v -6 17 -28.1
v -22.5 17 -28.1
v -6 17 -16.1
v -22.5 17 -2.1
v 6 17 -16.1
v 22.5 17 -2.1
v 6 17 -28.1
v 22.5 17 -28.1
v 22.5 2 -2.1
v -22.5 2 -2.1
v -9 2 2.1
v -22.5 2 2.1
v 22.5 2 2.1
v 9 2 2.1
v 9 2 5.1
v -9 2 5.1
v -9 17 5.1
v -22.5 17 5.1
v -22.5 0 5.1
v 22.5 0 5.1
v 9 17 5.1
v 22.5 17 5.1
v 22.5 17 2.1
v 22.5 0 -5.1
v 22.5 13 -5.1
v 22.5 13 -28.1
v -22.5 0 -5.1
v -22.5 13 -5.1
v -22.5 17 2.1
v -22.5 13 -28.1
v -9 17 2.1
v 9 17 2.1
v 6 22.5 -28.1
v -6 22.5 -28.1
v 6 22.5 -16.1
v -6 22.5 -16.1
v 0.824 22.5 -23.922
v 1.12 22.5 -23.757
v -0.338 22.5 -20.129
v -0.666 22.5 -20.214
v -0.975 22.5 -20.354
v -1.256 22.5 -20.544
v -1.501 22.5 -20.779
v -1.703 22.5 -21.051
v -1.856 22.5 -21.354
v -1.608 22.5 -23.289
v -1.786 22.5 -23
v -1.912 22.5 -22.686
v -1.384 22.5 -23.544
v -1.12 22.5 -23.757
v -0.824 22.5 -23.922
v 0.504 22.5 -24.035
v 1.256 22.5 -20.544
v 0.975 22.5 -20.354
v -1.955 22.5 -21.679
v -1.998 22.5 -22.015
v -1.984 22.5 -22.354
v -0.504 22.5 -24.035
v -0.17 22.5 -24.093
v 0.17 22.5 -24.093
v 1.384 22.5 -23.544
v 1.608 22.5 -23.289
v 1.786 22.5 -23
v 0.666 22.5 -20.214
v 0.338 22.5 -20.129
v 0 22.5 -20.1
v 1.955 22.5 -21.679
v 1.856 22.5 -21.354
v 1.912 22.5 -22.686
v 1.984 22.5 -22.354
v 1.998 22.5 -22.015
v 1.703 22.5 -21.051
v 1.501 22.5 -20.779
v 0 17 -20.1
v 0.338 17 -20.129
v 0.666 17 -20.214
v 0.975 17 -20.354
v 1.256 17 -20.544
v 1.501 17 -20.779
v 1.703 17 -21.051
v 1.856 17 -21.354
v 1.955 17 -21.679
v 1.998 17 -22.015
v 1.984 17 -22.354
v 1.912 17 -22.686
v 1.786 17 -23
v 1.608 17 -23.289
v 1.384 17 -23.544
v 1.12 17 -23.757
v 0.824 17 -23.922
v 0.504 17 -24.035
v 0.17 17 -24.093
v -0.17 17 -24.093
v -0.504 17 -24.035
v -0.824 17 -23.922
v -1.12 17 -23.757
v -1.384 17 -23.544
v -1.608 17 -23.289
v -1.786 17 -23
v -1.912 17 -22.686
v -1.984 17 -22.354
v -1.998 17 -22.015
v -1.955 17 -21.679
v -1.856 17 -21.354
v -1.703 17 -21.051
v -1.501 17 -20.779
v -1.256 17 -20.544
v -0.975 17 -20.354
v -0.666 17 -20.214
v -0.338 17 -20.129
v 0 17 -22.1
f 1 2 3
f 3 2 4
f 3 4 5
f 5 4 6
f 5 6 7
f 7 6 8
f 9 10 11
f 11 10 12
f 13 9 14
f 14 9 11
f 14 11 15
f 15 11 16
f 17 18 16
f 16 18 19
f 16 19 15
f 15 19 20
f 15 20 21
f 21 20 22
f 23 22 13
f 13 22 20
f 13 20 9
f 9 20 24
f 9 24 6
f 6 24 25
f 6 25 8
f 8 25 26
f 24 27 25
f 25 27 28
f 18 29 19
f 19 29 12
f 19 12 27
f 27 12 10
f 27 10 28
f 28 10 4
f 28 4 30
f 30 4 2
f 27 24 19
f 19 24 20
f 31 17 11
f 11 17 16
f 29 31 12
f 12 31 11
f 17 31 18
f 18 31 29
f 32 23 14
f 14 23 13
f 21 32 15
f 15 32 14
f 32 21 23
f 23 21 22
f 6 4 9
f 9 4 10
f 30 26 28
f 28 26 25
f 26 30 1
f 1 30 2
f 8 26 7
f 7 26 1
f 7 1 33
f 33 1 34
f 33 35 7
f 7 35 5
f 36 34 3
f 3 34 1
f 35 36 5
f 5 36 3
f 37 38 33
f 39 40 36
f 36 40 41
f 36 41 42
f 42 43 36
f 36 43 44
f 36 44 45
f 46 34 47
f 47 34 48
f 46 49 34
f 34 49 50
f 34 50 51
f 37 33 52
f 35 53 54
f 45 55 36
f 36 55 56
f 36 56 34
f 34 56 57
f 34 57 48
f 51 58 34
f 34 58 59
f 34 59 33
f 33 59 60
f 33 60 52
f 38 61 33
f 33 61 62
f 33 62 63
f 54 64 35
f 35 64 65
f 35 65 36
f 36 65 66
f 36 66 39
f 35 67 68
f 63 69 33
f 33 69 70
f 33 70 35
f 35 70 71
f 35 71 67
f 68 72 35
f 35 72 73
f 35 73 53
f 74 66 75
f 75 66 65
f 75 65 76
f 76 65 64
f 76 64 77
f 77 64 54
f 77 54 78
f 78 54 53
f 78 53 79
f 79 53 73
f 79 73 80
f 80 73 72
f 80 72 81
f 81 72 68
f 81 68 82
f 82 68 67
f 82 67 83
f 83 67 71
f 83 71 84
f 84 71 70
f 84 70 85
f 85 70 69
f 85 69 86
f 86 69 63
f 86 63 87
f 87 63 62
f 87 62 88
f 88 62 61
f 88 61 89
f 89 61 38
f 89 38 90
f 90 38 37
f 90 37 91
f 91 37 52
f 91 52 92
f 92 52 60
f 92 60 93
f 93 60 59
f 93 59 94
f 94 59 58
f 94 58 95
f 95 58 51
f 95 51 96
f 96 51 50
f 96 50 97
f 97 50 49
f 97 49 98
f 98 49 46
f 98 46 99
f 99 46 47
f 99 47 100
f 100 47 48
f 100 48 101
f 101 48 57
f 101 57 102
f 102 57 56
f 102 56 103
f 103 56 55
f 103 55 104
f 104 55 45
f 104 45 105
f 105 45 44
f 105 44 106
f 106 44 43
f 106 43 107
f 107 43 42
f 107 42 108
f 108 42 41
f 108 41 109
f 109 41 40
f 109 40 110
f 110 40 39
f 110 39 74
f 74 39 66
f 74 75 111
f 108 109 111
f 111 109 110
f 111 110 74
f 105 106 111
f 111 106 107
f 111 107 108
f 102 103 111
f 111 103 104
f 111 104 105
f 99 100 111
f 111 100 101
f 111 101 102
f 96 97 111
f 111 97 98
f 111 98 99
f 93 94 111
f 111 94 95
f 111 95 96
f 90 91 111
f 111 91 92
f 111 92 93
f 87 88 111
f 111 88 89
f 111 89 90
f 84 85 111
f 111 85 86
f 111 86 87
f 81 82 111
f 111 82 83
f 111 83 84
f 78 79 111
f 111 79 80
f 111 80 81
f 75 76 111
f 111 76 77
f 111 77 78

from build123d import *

# Parameters (mm, degrees)
SKETCH1_W      = 45
SKETCH1_H      = 10.2
EXTRUDE1_DEPTH = 2
SKETCH2_W      = 13.5
SKETCH2_H      = 3
SKETCH2_W_2    = 45
EXTRUDE2_DEPTH = 15
SKETCH3_W      = 45
SKETCH3_H      = 4
EXTRUDE3_DEPTH = 23
SKETCH6_W      = 12
SKETCH6_H      = 12
EXTRUDE4_DEPTH = 5.5
SKETCH7_R      = 2
EXTRUDE5_DEPTH = 5.5


with BuildPart() as part:
    # Sketch1 → Extrude1 (new body)
    with BuildSketch(Plane(origin=(0, 0, 0), x_dir=(1, 0, 0), z_dir=(0, 1, 0))):
        Rectangle(SKETCH1_W, SKETCH1_H)
    extrude(amount=EXTRUDE1_DEPTH)

    # Sketch2 → Extrude2 (add)
    with BuildSketch(Plane(origin=(0, 2, 0), x_dir=(1, 0, 0), z_dir=(0, 1, 0))):
        with Locations((-15.75, -3.6)):
            Rectangle(SKETCH2_W, SKETCH2_H)
        with Locations((15.75, -3.6)):
            Rectangle(SKETCH2_W, SKETCH2_H)
        with Locations((0, 3.6)):
            Rectangle(SKETCH2_W_2, SKETCH2_H)
    extrude(amount=EXTRUDE2_DEPTH)

    # Sketch3 → Extrude3 (add)
    with BuildSketch(Plane(origin=(0, 0, -5.1), x_dir=(-1, 0, 0), z_dir=(0, 0, -1))):
        with Locations((0, 15)):
            Rectangle(SKETCH3_W, SKETCH3_H)
    extrude(amount=EXTRUDE3_DEPTH)

    # Sketch6 → Extrude4 (add)
    with BuildSketch(Plane(origin=(0, 17, 0), x_dir=(1, 0, 0), z_dir=(0, 1, 0))):
        with Locations((0, 22.1)):
            Rectangle(SKETCH6_W, SKETCH6_H)
    extrude(amount=EXTRUDE4_DEPTH)

    # Sketch7 → Extrude5 (cut)
    with BuildSketch(Plane(origin=(0, 22.5, 0), x_dir=(1, 0, 0), z_dir=(0, 1, 0))):
        with Locations(Location((0, 22.1, 0), (0, 0, 270))):
            Circle(SKETCH7_R)
    extrude(amount=-EXTRUDE5_DEPTH, mode=Mode.SUBTRACT)


solid = part.part
